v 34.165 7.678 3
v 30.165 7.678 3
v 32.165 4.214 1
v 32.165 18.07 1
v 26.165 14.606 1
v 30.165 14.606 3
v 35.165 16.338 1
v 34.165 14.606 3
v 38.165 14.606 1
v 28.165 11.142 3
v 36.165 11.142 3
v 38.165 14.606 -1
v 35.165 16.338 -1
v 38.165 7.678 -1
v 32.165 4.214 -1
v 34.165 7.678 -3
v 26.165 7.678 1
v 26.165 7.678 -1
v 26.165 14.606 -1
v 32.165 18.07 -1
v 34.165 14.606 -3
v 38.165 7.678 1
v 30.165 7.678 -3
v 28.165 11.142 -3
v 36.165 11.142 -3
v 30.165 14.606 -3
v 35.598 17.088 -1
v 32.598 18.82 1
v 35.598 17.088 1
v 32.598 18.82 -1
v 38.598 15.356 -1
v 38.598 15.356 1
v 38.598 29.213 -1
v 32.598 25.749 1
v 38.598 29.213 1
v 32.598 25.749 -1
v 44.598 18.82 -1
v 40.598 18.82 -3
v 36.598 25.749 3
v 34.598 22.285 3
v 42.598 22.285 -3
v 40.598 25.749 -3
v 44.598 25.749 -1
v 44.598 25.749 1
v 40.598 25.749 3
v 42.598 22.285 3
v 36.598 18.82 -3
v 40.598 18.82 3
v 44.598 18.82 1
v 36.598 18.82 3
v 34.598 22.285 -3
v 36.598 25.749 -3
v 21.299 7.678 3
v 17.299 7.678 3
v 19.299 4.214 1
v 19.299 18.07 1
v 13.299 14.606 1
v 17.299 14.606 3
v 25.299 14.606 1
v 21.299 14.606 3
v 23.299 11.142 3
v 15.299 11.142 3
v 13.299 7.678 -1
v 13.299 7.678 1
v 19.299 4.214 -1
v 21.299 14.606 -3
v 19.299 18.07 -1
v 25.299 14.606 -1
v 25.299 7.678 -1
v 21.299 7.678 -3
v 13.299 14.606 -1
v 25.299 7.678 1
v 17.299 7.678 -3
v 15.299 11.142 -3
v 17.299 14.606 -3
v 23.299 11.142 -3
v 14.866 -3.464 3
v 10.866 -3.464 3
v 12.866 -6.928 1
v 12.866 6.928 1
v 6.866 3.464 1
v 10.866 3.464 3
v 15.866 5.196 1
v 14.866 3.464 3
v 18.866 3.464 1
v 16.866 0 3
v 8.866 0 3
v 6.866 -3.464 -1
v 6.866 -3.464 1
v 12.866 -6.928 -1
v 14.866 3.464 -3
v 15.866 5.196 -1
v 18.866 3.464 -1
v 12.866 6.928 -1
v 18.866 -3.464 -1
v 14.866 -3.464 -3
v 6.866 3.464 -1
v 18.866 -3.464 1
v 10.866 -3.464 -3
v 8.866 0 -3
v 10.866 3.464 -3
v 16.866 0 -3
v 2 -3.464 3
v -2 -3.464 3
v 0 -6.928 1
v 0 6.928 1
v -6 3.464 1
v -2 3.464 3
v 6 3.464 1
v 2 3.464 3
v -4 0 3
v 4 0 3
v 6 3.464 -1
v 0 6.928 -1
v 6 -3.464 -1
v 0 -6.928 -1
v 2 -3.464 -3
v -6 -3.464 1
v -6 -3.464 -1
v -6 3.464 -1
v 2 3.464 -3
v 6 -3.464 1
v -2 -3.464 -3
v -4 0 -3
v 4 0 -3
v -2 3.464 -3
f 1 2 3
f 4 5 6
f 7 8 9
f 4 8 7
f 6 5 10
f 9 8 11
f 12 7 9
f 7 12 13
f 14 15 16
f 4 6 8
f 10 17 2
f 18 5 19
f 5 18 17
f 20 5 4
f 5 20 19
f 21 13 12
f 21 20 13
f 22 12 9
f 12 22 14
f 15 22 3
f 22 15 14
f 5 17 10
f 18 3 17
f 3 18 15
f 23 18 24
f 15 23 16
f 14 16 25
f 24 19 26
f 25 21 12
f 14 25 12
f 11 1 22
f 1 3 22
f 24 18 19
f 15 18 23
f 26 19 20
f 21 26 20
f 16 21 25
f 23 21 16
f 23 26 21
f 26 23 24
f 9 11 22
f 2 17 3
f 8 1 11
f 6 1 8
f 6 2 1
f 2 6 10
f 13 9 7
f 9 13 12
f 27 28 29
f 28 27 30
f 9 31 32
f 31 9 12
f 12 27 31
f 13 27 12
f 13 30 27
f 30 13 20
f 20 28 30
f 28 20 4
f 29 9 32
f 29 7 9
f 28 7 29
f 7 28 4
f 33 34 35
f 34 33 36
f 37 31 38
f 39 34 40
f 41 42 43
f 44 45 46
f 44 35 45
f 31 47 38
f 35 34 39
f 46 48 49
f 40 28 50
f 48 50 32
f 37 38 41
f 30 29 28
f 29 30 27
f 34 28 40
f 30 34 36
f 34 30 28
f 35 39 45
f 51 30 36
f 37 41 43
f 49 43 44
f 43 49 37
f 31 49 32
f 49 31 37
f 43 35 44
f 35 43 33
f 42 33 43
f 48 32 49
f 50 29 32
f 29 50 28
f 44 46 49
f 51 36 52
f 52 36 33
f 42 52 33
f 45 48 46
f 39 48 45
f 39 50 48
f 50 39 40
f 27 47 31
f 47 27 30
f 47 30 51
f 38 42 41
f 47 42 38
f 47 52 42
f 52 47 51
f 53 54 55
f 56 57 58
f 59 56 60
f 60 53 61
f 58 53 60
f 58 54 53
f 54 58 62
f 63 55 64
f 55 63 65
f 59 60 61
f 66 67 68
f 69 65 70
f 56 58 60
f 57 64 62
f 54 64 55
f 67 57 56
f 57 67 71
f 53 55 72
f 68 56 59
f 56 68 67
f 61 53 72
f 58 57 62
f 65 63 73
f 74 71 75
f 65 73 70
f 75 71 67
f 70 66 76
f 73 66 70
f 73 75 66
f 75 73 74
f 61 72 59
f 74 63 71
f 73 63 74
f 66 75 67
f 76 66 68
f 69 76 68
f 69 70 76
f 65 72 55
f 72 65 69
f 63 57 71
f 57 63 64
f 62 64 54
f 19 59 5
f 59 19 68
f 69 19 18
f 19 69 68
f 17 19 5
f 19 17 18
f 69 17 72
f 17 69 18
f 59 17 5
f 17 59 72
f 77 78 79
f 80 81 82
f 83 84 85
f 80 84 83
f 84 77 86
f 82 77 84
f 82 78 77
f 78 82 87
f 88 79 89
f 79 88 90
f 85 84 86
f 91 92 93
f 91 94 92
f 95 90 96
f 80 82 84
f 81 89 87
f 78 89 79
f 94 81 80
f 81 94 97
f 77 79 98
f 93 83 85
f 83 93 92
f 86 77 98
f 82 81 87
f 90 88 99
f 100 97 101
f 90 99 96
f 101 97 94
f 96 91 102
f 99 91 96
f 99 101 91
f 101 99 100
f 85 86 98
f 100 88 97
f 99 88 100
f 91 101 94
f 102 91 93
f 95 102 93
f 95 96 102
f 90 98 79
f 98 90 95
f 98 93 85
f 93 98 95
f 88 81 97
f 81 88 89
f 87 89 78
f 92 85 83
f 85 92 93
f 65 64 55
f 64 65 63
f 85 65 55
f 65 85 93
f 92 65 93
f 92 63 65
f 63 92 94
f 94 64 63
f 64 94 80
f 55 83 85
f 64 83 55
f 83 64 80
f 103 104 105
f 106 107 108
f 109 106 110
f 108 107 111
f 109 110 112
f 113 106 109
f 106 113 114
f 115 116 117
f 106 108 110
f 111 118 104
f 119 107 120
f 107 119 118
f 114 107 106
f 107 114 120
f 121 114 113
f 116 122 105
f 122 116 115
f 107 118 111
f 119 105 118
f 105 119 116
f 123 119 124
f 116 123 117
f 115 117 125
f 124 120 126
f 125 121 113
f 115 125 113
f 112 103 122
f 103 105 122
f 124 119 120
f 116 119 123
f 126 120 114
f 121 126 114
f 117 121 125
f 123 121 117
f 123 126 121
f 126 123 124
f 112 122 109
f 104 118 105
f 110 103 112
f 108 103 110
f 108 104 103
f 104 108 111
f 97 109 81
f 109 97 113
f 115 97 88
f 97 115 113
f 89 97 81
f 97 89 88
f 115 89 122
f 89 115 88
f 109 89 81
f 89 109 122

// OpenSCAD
// file: gem-common.scad
angles = [for(i = [0:5]) i * (360 / 6)];

inner_poly_radius=8 * cos(60);
outer_poly_radius=8 * cos(30);
outer_poly_z=1;
inner_poly_z=3;


gap_between_gems = cos(30);
distance_to_corner = cos(30) * outer_poly_radius * 2 + gap_between_gems;


module edge_connector(angle = 0) {
    function make_point_2d(r, angle, height) = [r * sin(angle), height];
    
    points = [
        make_point_2d(outer_poly_radius, 30, outer_poly_z),
        make_point_2d(outer_poly_radius, -30, outer_poly_z),
        make_point_2d(outer_poly_radius, -30, -outer_poly_z),
        make_point_2d(outer_poly_radius, 30, -outer_poly_z),
    ];
    
    rotate([0,0,angle]) {
        translate([(distance_to_corner - gap_between_gems) / 2,0,0]){
            rotate([90, 0, 90]) {
                linear_extrude(gap_between_gems) {
                    polygon(points);
                }
            }
        }
    }
}

module move(distance, angle) {
    translate([distance * cos(angle), distance * sin(angle), 0]) {
        children();
    }
}


module corner_connector(angle=0) {
    r = 0.5;
    rotate_angle = angle + 30;
    move(outer_poly_radius + r, rotate_angle) {
        translate([0,0, -outer_poly_z]) {
            rotate([0,0,-rotate_angle]) {
                cylinder($fn=3, r=r, h=outer_poly_z * 2);
            }
        }
    }
}

module gem() {
    function make_point(r, angle, height) = [r * cos(angle), r * sin(angle), height];
    
    top_poly = [for(th = angles) make_point(inner_poly_radius, th, inner_poly_z)];
    top_outer_poly = [for(th = angles) make_point(outer_poly_radius, th + 30, outer_poly_z)];
    bottom_outer_poly = [for(th = angles) make_point(outer_poly_radius, th + 30, -outer_poly_z)];
    bottom_poly = [for(th = angles) make_point(inner_poly_radius, th, -inner_poly_z)];
 
    function rot(n, base) = (n + 1 - base) % 6 + base;
    
    faces = [
        [5, 4, 3, 2, 1, 0],
        for(i = [0:5]) [i, (i + 1) % 6, i + 6],
        for(i = [6:11]) [i, (i - 5) % 6, rot(i, 6)],
        for(i = [6:11]) [i, rot(i, 6), rot(i, 6) + 6, i + 6],
        for(i = [12:17]) [i, rot(i, 12), rot(i, 12) + 6],
        for(i = [18:23]) [i, i-6, rot(i, 18)],
        [18, 19, 20, 21, 22, 23],
    ];
    
    polyhedron(
        concat(
            top_poly,
            top_outer_poly,
            bottom_outer_poly,
            bottom_poly
        ),
        faces
    );
}
// main file
include <./gem-common.scad>

gem();
edge_connector();
move(distance_to_corner, 0) {
    gem();
    edge_connector(60);
    move(distance_to_corner, 60) {
        gem();
        edge_connector(0);
        move(distance_to_corner, 0) {
            gem();
            edge_connector(60);
            move(distance_to_corner, 60) {
                gem();
            }
        }
    }
}
